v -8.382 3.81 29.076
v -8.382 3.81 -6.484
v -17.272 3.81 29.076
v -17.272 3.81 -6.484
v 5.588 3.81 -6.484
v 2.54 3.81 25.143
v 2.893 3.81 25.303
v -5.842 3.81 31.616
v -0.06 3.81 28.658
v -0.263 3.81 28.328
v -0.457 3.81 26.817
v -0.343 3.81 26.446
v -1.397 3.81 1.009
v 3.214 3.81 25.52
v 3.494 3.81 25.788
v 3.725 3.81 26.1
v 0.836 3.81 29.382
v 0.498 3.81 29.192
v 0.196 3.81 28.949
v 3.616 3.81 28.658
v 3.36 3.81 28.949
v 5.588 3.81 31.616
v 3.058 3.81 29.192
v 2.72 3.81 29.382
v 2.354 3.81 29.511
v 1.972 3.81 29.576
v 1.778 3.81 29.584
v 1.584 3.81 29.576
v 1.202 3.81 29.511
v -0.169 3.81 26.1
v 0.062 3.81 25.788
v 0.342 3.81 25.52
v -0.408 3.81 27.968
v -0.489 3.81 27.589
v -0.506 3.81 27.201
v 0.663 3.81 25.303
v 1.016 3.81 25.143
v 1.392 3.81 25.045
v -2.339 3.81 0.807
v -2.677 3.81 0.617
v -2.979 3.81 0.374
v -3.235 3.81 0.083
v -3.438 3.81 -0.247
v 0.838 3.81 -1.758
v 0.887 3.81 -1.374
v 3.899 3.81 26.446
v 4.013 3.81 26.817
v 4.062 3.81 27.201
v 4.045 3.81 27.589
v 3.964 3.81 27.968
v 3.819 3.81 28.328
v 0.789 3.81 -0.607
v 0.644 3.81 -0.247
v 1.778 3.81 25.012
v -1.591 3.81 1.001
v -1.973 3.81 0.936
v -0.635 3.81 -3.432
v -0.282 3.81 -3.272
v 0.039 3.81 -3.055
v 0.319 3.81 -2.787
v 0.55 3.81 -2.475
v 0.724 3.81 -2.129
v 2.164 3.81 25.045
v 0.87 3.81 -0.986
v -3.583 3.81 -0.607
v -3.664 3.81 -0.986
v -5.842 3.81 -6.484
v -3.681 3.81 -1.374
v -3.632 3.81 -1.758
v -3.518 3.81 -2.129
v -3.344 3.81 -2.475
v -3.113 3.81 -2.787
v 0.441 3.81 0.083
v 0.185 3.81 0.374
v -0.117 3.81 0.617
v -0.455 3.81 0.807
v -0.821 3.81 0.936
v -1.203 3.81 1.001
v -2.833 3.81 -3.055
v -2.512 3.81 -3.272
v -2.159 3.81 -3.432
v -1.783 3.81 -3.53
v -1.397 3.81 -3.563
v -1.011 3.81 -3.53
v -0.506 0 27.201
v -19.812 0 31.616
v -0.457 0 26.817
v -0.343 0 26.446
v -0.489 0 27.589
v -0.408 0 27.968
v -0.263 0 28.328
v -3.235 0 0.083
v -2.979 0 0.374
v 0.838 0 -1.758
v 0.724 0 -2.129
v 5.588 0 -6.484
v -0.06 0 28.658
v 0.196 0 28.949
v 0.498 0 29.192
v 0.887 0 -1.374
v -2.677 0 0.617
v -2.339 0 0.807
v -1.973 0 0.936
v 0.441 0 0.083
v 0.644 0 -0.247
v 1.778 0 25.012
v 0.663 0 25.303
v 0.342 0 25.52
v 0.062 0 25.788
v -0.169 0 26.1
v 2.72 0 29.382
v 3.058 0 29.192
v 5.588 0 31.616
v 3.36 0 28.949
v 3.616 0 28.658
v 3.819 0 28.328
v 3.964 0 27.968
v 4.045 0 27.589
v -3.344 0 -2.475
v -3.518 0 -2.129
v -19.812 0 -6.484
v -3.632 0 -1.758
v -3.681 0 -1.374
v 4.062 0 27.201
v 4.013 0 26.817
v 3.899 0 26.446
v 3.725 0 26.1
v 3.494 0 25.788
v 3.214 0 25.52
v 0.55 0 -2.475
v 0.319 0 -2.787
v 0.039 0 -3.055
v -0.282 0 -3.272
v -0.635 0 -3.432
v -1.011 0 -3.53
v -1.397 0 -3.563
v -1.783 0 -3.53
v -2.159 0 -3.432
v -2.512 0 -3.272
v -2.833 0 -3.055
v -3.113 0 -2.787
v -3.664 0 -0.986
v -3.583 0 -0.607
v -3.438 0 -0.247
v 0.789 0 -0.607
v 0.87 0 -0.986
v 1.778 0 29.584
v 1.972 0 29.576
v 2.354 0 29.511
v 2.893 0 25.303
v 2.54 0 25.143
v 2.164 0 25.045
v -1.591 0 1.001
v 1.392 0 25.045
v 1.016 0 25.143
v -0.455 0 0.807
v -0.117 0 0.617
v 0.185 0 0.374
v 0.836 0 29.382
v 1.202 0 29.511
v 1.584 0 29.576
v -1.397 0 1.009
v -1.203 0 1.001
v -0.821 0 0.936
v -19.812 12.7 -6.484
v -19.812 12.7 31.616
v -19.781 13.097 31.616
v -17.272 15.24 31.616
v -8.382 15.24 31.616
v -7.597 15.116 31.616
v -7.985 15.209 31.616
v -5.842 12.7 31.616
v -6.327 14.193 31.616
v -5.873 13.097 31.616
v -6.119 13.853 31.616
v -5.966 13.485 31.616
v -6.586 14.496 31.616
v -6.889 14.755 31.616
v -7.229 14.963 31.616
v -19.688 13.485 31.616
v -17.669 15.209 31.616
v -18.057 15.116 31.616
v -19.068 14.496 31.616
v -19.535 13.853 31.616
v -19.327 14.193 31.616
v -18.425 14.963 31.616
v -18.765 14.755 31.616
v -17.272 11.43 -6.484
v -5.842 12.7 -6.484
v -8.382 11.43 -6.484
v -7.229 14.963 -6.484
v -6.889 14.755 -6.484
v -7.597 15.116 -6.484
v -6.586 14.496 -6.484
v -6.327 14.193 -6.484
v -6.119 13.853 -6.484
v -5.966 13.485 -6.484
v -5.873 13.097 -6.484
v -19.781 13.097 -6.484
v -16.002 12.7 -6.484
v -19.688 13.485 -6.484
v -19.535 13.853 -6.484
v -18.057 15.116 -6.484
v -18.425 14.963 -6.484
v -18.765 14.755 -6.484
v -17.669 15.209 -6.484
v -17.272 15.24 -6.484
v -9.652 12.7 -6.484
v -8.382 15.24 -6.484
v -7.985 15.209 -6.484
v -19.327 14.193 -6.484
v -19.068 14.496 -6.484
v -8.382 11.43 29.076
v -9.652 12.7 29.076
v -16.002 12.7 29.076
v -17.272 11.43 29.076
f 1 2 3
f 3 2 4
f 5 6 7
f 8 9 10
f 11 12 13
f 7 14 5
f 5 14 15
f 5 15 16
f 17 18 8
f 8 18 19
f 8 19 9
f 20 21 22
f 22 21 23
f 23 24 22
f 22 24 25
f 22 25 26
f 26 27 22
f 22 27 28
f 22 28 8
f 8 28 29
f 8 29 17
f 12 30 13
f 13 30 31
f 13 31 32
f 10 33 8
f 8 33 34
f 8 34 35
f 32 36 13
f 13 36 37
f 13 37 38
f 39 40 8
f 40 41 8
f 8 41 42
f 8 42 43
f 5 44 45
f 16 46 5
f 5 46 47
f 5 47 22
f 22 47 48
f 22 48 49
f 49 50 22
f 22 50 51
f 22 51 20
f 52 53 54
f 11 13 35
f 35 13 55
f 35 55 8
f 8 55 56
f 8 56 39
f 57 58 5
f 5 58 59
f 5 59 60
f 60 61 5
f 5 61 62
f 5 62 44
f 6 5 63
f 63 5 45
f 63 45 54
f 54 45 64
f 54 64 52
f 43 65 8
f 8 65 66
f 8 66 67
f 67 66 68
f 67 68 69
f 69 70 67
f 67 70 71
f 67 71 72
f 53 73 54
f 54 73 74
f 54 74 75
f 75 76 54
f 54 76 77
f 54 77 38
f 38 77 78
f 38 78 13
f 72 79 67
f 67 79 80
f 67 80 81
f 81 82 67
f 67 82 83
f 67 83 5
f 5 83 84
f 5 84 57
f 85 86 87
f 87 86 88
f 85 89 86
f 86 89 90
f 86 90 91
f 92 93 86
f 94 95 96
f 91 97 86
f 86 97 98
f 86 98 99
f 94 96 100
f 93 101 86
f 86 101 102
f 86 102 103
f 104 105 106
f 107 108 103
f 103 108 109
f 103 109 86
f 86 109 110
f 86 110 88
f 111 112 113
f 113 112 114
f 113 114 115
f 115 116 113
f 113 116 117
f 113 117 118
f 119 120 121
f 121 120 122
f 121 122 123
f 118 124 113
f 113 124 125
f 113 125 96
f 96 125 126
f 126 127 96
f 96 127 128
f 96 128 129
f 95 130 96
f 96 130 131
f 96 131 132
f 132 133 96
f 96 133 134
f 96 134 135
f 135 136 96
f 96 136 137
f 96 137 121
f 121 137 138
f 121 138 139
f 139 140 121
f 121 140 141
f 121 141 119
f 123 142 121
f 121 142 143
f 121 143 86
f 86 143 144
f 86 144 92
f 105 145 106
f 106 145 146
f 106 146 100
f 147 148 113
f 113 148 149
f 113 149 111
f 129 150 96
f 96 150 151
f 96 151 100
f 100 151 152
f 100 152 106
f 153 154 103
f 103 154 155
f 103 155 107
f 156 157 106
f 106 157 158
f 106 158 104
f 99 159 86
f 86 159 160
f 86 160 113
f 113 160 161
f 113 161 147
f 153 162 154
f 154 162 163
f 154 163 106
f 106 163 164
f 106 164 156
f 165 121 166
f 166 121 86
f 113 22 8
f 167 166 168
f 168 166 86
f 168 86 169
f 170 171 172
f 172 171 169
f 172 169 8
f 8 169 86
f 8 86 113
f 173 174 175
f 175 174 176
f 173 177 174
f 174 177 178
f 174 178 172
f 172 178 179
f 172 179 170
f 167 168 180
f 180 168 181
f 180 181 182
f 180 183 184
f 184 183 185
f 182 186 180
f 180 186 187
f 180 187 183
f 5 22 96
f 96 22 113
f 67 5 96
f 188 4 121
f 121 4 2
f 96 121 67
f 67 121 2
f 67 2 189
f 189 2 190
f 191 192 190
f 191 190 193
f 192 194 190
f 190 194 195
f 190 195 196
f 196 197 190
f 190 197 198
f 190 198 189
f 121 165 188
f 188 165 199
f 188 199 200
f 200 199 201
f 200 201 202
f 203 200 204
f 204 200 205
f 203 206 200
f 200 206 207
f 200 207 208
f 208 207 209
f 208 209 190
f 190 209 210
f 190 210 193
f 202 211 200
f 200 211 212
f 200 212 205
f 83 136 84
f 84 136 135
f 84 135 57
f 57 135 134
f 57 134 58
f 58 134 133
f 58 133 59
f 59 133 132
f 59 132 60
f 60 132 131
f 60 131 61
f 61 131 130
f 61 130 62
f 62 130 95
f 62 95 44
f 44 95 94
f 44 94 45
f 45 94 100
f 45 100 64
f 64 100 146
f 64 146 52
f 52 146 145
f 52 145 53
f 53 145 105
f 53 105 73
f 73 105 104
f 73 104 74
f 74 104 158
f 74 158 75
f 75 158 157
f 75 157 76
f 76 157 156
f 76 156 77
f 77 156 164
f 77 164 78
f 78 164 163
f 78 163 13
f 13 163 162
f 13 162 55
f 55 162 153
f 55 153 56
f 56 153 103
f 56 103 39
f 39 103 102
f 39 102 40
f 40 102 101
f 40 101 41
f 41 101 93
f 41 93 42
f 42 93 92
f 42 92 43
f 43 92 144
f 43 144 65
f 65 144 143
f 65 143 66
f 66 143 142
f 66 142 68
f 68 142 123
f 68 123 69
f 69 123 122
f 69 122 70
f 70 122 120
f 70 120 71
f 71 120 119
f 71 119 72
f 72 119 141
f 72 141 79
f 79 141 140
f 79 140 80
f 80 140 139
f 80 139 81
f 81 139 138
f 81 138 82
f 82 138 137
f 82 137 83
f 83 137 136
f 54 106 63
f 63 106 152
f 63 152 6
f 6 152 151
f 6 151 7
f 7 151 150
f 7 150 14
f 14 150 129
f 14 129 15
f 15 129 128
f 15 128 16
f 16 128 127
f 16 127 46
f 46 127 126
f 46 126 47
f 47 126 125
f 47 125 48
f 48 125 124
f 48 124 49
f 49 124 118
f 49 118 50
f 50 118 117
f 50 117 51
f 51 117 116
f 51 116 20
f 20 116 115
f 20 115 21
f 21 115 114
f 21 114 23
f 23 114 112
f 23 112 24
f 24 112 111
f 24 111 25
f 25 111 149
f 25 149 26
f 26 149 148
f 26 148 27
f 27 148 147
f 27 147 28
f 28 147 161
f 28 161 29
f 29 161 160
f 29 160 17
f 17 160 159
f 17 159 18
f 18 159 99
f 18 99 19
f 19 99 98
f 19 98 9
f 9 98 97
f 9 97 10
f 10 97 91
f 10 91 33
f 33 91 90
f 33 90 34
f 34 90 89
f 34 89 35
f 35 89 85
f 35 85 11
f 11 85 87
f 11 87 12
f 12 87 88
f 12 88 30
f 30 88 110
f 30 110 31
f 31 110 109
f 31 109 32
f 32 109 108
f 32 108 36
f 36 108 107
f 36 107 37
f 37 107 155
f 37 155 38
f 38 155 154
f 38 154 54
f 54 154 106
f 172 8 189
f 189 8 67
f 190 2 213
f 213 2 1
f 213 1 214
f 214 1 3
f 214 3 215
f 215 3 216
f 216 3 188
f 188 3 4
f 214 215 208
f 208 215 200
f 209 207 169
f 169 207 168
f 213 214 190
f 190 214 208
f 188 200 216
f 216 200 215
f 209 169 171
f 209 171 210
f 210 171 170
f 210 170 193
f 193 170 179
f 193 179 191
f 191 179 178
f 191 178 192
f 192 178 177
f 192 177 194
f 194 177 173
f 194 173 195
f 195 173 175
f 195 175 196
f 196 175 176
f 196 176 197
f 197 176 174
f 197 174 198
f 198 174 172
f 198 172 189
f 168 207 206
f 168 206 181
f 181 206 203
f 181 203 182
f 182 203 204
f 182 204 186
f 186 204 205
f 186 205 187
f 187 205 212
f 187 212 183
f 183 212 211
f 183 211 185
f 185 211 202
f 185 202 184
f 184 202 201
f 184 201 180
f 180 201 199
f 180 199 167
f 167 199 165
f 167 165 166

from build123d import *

# Parameters (mm, degrees)
SKETCH1_W           = 25.4
SKETCH1_H           = 38.1
SKETCH1_R           = 2.286
BOSS_EXTRUDE1_DEPTH = 3.81
BOSS_EXTRUDE2_DEPTH = 8.89
SKETCH3_W           = 13.97
SKETCH3_H           = 38.1
BOSS_EXTRUDE3_DEPTH = 2.54
CHAMFER1_SIZE       = 1.27
FILLET2_R           = 2.54


with BuildPart() as part:
    # Sketch1 → Boss-Extrude1 (new body)
    with BuildSketch(Plane(origin=(0, 0, 0), x_dir=(1, 0, 0), z_dir=(0, 1, 0))):
        with Locations((-7.112, -12.566479761)):
            Rectangle(SKETCH1_W, SKETCH1_H)
        with Locations(Location((-1.397, 1.276520239, 0), (0, 0, 90))):
            Circle(SKETCH1_R, mode=Mode.SUBTRACT)
        with Locations(Location((1.778, -27.298479761, 0), (0, 0, 90))):
            Circle(SKETCH1_R, mode=Mode.SUBTRACT)
    extrude(amount=BOSS_EXTRUDE1_DEPTH)

    # Sketch2 → Boss-Extrude2 (add)
    with BuildSketch(Plane(origin=(0, 3.81, 0), x_dir=(1, 0, 0), z_dir=(0, 1, 0))):
        Polygon((-19.812, 6.483520239), (-19.812, -31.616479761), (-5.842, -31.616479761), (-5.842, 6.483520239), (-8.382, 6.483520239), (-8.382, -29.076479761), (-17.272, -29.076479761), (-17.272, 6.483520239), align=None)
    extrude(amount=BOSS_EXTRUDE2_DEPTH)

    # Sketch3 → Boss-Extrude3 (add)
    with BuildSketch(Plane(origin=(0, 12.7, 0), x_dir=(1, 0, 0), z_dir=(0, 1, 0))):
        with Locations((-12.827, -12.566479761)):
            Rectangle(SKETCH3_W, SKETCH3_H)
    extrude(amount=BOSS_EXTRUDE3_DEPTH)

    # Chamfer1
    chamfer1_edges = [part.edges().sort_by_distance(p)[0] for p in [
        (-8.382, 12.7, 11.296479761),
        (-17.272, 12.7, 11.296479761),
    ]]
    chamfer(chamfer1_edges, length=CHAMFER1_SIZE)

    # Fillet2
    fillet2_edges = [part.edges().sort_by_distance(p)[0] for p in [
        (-19.812, 15.24, 12.566479761),
        (-5.842, 15.24, 12.566479761),
    ]]
    fillet(fillet2_edges, radius=FILLET2_R)


solid = part.part
